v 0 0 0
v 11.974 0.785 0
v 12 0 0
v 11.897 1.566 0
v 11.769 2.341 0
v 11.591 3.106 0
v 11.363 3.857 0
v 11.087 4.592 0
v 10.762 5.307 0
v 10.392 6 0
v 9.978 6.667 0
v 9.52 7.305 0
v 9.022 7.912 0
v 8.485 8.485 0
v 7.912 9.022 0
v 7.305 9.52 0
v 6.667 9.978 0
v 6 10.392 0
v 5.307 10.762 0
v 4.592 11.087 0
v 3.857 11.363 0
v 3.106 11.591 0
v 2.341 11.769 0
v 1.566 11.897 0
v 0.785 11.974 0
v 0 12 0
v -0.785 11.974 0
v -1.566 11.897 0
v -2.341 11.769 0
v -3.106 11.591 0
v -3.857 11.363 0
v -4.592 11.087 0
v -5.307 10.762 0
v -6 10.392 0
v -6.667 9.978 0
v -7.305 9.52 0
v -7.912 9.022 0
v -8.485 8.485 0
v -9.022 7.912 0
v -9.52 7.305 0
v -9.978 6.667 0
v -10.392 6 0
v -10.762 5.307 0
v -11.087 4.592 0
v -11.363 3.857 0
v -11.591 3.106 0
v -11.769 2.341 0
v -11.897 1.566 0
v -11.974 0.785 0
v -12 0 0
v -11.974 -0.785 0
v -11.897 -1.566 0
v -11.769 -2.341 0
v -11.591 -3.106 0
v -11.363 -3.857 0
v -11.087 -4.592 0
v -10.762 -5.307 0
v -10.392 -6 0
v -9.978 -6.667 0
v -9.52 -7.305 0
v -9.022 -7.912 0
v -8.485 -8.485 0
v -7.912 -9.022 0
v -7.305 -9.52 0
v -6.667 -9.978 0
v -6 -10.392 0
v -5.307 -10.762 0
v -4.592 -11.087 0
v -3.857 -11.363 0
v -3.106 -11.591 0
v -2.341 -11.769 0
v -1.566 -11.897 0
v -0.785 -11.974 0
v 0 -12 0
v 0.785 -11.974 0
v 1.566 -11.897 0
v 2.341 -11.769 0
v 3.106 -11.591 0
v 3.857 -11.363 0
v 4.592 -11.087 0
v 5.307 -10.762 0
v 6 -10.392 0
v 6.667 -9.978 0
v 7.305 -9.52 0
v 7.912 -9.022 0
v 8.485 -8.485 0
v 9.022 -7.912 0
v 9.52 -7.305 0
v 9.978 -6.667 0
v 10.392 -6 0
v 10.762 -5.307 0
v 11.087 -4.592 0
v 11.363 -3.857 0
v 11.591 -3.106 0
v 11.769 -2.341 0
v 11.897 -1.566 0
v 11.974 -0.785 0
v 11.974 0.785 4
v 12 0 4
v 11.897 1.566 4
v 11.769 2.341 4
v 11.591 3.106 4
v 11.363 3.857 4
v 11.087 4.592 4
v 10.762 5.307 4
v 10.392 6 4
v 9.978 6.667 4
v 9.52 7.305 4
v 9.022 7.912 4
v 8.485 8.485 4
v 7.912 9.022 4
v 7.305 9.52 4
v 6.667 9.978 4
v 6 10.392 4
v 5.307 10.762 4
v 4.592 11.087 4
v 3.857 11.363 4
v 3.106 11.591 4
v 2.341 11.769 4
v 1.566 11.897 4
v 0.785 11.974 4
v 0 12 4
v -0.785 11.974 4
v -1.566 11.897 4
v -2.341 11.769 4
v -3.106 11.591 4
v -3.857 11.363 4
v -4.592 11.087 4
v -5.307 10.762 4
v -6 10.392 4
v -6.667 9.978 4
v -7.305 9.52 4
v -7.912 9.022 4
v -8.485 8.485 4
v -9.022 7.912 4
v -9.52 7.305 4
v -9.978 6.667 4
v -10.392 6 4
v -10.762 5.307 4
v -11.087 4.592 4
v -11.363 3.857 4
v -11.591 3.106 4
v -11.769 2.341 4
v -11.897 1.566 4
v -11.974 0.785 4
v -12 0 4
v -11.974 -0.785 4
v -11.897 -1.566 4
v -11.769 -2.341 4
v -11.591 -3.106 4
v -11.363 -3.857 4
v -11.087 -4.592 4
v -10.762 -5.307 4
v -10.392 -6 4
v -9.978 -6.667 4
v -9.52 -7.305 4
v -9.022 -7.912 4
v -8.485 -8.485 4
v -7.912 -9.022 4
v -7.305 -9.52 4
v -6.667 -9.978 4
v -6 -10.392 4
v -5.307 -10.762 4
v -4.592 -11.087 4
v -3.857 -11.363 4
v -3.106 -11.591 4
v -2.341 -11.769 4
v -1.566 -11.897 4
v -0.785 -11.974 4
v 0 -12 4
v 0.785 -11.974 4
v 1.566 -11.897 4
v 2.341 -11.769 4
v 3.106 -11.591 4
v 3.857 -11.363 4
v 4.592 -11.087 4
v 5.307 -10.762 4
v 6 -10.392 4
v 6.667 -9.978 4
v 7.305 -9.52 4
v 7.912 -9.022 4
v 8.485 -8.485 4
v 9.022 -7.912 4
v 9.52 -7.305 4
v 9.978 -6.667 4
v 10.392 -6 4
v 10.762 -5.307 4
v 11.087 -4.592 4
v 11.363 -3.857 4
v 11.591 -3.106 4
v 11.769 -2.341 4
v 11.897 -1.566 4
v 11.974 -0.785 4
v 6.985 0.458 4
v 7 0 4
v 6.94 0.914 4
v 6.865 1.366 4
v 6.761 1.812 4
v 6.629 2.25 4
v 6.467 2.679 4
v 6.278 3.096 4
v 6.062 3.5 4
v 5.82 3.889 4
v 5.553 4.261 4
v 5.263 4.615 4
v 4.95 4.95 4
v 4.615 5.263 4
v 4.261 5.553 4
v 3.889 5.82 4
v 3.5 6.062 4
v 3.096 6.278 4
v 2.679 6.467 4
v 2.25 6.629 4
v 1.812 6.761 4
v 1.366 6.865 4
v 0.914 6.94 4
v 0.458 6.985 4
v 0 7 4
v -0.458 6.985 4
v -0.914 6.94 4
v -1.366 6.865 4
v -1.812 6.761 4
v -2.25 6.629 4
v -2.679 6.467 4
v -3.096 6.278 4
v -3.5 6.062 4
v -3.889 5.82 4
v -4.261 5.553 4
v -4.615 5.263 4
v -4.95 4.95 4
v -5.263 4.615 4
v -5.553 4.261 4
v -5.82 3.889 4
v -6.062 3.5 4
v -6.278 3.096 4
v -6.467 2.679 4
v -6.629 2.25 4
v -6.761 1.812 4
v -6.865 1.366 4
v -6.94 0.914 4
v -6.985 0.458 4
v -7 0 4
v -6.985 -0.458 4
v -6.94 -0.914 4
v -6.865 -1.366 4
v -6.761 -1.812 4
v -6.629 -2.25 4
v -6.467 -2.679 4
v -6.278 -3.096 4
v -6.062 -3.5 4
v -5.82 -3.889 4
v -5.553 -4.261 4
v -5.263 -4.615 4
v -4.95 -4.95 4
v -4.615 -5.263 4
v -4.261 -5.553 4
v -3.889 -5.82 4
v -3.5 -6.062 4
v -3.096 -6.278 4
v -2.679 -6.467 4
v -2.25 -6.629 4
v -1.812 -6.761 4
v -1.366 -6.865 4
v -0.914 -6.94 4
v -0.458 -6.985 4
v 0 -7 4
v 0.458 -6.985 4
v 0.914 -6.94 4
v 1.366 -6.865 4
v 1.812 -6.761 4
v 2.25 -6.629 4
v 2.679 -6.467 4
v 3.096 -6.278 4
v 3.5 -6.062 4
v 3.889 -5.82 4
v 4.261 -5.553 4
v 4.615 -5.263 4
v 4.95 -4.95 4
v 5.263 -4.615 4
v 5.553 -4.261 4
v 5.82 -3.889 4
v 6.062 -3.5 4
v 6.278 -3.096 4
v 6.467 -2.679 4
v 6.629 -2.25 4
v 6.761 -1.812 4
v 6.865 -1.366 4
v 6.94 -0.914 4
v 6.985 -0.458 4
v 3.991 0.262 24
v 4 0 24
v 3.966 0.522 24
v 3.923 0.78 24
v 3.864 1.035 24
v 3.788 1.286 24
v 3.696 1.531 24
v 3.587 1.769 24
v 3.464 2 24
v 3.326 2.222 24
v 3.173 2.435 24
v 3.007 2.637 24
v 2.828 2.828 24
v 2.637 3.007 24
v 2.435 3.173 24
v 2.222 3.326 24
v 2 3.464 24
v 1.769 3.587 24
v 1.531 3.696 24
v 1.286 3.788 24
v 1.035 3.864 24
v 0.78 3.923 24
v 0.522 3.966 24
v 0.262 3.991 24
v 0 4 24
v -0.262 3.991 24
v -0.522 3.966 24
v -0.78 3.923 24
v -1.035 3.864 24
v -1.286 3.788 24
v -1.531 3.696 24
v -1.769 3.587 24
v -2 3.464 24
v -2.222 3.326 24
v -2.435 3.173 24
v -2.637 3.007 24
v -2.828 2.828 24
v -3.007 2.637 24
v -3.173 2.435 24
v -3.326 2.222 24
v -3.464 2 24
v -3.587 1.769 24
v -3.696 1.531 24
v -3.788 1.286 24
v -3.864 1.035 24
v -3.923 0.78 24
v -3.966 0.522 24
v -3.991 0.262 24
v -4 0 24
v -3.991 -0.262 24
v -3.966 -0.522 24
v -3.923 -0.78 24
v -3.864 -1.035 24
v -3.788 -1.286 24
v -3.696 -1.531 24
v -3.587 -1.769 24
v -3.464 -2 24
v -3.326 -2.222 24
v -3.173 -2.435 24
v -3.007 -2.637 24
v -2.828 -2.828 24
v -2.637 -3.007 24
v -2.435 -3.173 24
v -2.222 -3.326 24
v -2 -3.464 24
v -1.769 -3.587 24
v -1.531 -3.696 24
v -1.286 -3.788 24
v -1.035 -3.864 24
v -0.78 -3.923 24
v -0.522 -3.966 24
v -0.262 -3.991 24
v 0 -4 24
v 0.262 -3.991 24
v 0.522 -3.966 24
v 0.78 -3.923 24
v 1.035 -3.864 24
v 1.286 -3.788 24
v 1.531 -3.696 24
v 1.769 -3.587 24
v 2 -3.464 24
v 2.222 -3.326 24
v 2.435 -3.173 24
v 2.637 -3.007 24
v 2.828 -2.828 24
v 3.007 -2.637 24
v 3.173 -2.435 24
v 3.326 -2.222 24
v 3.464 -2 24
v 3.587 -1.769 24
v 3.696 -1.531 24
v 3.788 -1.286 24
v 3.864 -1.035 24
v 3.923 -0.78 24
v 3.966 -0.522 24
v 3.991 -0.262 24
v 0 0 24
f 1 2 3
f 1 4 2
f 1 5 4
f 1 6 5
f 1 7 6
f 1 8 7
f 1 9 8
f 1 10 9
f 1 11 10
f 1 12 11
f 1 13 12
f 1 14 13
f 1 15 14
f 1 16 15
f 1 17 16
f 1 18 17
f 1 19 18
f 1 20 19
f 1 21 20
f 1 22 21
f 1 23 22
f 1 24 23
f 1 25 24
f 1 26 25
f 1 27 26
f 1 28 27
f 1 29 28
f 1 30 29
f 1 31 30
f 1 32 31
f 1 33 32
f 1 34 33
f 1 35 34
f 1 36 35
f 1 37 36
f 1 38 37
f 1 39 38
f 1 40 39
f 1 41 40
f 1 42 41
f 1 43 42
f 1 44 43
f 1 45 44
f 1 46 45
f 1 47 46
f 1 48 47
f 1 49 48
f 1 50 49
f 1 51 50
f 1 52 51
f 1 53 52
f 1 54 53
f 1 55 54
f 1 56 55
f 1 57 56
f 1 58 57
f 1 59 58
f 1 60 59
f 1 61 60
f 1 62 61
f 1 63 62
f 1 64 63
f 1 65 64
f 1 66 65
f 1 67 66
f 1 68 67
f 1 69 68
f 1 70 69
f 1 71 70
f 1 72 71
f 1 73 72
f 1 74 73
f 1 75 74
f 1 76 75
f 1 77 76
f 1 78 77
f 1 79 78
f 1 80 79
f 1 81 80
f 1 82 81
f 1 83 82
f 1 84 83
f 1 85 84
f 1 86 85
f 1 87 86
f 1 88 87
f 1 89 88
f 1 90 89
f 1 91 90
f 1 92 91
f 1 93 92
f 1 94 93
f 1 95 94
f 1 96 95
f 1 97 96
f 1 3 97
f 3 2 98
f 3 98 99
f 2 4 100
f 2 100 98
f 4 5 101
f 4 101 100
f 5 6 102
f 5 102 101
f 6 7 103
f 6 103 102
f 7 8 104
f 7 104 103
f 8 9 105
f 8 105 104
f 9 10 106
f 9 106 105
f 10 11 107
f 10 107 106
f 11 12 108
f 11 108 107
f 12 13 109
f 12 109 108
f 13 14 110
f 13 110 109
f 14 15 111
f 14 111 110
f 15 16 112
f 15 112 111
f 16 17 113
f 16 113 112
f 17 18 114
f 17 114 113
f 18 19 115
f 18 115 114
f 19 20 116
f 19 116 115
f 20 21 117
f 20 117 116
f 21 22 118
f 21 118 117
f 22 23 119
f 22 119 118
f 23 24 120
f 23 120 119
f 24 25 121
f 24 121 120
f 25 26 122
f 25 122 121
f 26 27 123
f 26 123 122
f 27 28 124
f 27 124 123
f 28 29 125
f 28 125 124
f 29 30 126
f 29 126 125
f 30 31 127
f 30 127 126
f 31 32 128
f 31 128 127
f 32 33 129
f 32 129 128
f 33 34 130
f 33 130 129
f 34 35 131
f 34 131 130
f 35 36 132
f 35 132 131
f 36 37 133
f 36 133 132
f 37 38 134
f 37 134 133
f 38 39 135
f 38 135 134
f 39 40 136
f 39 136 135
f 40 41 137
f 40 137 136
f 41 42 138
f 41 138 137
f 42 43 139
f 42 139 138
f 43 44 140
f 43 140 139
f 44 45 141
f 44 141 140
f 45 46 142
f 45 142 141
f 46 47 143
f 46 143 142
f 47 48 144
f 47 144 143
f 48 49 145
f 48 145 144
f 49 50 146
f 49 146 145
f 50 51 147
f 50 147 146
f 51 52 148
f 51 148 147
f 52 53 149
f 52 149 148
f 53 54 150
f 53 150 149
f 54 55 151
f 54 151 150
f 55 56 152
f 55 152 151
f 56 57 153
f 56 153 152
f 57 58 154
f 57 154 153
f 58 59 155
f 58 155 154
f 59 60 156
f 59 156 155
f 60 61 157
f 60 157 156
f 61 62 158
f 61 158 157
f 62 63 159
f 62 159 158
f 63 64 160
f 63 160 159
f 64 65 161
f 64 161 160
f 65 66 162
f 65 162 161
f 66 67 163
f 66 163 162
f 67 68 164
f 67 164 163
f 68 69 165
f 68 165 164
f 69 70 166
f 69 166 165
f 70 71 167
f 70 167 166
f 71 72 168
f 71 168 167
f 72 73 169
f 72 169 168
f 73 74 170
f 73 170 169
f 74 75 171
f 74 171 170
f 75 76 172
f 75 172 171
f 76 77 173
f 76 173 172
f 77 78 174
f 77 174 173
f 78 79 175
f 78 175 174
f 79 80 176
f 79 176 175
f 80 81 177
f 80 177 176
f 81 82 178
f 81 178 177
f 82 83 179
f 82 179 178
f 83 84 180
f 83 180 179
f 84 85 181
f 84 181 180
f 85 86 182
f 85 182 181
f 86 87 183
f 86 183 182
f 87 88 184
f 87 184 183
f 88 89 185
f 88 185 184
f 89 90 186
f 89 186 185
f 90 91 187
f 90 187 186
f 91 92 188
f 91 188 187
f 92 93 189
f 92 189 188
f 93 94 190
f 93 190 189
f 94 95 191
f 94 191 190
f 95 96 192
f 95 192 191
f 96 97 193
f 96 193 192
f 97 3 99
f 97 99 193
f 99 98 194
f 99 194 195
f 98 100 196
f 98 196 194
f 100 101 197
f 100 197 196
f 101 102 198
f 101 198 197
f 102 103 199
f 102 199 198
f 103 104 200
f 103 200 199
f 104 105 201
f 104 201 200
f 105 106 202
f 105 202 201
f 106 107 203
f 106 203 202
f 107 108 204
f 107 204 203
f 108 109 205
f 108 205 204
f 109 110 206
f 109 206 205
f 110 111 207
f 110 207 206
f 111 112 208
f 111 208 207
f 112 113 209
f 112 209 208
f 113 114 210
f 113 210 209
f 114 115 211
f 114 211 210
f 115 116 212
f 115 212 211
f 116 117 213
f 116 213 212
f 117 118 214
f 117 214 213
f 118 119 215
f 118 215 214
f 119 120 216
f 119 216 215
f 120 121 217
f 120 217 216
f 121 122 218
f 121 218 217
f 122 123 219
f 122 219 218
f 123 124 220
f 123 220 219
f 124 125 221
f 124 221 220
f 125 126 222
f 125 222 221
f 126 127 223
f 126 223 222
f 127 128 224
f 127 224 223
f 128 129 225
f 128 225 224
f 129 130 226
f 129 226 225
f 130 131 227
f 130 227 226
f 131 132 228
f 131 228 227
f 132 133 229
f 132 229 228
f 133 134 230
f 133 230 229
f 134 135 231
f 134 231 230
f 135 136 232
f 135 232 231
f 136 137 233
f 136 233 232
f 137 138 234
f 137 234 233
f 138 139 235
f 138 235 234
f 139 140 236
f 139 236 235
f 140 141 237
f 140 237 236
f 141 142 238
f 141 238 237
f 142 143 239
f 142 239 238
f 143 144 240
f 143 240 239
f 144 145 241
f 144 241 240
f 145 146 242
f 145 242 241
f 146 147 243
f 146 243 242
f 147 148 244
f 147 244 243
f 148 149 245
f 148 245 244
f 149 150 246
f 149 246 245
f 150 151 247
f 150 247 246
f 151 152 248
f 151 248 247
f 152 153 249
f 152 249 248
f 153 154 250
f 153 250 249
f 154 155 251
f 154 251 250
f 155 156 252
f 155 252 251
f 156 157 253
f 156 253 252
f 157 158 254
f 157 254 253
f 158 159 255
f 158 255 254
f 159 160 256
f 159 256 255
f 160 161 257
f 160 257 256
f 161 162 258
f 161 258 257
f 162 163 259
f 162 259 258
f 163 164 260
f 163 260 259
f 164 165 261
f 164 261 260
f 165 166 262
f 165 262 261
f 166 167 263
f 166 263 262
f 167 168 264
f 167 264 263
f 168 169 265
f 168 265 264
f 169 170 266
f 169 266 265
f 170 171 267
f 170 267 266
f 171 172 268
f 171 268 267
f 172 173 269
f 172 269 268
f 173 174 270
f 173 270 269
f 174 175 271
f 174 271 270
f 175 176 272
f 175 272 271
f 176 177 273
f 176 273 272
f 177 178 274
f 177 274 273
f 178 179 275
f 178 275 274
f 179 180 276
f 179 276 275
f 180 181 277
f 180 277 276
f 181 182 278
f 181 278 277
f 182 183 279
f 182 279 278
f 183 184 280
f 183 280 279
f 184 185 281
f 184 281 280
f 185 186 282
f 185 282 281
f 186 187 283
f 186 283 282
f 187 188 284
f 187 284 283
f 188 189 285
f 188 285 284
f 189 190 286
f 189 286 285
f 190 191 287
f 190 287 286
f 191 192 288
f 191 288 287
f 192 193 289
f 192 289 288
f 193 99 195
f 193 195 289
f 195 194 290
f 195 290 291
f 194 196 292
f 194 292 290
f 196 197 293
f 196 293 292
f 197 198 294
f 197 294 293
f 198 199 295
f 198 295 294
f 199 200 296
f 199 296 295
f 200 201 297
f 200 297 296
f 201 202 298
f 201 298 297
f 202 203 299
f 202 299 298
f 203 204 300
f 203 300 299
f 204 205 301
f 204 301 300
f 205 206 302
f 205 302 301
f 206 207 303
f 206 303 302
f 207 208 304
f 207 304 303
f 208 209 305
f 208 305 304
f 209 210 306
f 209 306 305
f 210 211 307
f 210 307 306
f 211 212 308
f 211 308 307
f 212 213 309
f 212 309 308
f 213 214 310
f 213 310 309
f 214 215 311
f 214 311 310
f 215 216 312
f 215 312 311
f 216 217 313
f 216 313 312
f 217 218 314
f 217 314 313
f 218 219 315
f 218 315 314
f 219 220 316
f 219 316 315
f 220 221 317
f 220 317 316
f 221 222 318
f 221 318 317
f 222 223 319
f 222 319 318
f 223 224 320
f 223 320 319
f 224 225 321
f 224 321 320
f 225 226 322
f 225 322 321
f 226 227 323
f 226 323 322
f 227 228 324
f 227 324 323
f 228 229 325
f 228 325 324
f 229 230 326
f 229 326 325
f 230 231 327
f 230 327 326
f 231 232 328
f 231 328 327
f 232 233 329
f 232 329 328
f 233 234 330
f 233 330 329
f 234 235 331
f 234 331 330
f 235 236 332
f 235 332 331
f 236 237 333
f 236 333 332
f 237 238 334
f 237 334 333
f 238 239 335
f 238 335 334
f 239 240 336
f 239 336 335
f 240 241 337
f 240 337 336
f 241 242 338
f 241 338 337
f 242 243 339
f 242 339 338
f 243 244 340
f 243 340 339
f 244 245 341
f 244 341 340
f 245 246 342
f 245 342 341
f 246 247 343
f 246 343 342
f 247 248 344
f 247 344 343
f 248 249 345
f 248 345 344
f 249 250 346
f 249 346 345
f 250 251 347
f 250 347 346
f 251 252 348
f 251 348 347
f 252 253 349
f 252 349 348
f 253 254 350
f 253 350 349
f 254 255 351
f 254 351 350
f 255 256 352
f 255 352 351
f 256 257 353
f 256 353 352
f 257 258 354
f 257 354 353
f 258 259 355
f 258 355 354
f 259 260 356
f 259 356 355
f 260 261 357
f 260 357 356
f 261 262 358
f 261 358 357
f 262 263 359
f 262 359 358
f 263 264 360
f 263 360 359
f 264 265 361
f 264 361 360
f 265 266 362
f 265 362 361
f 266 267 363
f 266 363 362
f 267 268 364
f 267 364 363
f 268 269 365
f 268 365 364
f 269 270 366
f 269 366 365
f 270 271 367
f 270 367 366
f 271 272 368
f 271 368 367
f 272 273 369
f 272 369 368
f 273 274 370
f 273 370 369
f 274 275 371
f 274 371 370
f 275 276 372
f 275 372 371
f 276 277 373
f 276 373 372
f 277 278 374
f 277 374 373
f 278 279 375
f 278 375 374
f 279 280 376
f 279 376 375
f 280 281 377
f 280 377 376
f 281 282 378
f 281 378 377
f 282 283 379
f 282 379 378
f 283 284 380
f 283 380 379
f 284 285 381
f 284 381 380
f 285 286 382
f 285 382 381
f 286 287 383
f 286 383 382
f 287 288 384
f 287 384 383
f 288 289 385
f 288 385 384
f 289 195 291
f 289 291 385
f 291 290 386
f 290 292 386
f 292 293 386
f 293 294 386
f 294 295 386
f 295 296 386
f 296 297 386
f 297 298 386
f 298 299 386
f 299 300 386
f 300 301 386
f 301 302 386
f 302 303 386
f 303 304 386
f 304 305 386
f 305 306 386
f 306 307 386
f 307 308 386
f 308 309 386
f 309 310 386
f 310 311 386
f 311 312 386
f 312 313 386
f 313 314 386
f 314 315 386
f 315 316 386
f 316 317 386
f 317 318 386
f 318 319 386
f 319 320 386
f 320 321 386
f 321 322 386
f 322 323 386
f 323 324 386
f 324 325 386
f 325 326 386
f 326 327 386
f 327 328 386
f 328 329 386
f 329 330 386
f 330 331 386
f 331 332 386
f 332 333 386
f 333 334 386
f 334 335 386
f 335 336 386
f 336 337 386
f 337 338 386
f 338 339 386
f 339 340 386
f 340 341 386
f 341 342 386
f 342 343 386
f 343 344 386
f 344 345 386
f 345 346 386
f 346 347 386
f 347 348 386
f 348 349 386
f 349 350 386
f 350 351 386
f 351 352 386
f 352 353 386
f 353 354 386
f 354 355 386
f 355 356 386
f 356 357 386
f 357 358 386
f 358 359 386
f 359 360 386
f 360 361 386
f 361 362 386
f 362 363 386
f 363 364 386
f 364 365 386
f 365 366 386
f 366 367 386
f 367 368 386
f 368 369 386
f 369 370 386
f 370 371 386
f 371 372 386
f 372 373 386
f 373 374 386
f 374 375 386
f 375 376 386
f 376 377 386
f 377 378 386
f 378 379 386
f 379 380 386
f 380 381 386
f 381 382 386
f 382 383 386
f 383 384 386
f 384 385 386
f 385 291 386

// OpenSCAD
// Original MechIntel educational model. CC0-1.0. Units: mm.
// Not a standardized or load-rated component.
$fn=96;
// Section points: [radius, height], mm. Edit to change the profile.
section=[[0, 0], [12, 0], [12, 4], [7, 4], [4, 24], [0, 24]];
rotate_extrude($fn=96) polygon(points=section);
